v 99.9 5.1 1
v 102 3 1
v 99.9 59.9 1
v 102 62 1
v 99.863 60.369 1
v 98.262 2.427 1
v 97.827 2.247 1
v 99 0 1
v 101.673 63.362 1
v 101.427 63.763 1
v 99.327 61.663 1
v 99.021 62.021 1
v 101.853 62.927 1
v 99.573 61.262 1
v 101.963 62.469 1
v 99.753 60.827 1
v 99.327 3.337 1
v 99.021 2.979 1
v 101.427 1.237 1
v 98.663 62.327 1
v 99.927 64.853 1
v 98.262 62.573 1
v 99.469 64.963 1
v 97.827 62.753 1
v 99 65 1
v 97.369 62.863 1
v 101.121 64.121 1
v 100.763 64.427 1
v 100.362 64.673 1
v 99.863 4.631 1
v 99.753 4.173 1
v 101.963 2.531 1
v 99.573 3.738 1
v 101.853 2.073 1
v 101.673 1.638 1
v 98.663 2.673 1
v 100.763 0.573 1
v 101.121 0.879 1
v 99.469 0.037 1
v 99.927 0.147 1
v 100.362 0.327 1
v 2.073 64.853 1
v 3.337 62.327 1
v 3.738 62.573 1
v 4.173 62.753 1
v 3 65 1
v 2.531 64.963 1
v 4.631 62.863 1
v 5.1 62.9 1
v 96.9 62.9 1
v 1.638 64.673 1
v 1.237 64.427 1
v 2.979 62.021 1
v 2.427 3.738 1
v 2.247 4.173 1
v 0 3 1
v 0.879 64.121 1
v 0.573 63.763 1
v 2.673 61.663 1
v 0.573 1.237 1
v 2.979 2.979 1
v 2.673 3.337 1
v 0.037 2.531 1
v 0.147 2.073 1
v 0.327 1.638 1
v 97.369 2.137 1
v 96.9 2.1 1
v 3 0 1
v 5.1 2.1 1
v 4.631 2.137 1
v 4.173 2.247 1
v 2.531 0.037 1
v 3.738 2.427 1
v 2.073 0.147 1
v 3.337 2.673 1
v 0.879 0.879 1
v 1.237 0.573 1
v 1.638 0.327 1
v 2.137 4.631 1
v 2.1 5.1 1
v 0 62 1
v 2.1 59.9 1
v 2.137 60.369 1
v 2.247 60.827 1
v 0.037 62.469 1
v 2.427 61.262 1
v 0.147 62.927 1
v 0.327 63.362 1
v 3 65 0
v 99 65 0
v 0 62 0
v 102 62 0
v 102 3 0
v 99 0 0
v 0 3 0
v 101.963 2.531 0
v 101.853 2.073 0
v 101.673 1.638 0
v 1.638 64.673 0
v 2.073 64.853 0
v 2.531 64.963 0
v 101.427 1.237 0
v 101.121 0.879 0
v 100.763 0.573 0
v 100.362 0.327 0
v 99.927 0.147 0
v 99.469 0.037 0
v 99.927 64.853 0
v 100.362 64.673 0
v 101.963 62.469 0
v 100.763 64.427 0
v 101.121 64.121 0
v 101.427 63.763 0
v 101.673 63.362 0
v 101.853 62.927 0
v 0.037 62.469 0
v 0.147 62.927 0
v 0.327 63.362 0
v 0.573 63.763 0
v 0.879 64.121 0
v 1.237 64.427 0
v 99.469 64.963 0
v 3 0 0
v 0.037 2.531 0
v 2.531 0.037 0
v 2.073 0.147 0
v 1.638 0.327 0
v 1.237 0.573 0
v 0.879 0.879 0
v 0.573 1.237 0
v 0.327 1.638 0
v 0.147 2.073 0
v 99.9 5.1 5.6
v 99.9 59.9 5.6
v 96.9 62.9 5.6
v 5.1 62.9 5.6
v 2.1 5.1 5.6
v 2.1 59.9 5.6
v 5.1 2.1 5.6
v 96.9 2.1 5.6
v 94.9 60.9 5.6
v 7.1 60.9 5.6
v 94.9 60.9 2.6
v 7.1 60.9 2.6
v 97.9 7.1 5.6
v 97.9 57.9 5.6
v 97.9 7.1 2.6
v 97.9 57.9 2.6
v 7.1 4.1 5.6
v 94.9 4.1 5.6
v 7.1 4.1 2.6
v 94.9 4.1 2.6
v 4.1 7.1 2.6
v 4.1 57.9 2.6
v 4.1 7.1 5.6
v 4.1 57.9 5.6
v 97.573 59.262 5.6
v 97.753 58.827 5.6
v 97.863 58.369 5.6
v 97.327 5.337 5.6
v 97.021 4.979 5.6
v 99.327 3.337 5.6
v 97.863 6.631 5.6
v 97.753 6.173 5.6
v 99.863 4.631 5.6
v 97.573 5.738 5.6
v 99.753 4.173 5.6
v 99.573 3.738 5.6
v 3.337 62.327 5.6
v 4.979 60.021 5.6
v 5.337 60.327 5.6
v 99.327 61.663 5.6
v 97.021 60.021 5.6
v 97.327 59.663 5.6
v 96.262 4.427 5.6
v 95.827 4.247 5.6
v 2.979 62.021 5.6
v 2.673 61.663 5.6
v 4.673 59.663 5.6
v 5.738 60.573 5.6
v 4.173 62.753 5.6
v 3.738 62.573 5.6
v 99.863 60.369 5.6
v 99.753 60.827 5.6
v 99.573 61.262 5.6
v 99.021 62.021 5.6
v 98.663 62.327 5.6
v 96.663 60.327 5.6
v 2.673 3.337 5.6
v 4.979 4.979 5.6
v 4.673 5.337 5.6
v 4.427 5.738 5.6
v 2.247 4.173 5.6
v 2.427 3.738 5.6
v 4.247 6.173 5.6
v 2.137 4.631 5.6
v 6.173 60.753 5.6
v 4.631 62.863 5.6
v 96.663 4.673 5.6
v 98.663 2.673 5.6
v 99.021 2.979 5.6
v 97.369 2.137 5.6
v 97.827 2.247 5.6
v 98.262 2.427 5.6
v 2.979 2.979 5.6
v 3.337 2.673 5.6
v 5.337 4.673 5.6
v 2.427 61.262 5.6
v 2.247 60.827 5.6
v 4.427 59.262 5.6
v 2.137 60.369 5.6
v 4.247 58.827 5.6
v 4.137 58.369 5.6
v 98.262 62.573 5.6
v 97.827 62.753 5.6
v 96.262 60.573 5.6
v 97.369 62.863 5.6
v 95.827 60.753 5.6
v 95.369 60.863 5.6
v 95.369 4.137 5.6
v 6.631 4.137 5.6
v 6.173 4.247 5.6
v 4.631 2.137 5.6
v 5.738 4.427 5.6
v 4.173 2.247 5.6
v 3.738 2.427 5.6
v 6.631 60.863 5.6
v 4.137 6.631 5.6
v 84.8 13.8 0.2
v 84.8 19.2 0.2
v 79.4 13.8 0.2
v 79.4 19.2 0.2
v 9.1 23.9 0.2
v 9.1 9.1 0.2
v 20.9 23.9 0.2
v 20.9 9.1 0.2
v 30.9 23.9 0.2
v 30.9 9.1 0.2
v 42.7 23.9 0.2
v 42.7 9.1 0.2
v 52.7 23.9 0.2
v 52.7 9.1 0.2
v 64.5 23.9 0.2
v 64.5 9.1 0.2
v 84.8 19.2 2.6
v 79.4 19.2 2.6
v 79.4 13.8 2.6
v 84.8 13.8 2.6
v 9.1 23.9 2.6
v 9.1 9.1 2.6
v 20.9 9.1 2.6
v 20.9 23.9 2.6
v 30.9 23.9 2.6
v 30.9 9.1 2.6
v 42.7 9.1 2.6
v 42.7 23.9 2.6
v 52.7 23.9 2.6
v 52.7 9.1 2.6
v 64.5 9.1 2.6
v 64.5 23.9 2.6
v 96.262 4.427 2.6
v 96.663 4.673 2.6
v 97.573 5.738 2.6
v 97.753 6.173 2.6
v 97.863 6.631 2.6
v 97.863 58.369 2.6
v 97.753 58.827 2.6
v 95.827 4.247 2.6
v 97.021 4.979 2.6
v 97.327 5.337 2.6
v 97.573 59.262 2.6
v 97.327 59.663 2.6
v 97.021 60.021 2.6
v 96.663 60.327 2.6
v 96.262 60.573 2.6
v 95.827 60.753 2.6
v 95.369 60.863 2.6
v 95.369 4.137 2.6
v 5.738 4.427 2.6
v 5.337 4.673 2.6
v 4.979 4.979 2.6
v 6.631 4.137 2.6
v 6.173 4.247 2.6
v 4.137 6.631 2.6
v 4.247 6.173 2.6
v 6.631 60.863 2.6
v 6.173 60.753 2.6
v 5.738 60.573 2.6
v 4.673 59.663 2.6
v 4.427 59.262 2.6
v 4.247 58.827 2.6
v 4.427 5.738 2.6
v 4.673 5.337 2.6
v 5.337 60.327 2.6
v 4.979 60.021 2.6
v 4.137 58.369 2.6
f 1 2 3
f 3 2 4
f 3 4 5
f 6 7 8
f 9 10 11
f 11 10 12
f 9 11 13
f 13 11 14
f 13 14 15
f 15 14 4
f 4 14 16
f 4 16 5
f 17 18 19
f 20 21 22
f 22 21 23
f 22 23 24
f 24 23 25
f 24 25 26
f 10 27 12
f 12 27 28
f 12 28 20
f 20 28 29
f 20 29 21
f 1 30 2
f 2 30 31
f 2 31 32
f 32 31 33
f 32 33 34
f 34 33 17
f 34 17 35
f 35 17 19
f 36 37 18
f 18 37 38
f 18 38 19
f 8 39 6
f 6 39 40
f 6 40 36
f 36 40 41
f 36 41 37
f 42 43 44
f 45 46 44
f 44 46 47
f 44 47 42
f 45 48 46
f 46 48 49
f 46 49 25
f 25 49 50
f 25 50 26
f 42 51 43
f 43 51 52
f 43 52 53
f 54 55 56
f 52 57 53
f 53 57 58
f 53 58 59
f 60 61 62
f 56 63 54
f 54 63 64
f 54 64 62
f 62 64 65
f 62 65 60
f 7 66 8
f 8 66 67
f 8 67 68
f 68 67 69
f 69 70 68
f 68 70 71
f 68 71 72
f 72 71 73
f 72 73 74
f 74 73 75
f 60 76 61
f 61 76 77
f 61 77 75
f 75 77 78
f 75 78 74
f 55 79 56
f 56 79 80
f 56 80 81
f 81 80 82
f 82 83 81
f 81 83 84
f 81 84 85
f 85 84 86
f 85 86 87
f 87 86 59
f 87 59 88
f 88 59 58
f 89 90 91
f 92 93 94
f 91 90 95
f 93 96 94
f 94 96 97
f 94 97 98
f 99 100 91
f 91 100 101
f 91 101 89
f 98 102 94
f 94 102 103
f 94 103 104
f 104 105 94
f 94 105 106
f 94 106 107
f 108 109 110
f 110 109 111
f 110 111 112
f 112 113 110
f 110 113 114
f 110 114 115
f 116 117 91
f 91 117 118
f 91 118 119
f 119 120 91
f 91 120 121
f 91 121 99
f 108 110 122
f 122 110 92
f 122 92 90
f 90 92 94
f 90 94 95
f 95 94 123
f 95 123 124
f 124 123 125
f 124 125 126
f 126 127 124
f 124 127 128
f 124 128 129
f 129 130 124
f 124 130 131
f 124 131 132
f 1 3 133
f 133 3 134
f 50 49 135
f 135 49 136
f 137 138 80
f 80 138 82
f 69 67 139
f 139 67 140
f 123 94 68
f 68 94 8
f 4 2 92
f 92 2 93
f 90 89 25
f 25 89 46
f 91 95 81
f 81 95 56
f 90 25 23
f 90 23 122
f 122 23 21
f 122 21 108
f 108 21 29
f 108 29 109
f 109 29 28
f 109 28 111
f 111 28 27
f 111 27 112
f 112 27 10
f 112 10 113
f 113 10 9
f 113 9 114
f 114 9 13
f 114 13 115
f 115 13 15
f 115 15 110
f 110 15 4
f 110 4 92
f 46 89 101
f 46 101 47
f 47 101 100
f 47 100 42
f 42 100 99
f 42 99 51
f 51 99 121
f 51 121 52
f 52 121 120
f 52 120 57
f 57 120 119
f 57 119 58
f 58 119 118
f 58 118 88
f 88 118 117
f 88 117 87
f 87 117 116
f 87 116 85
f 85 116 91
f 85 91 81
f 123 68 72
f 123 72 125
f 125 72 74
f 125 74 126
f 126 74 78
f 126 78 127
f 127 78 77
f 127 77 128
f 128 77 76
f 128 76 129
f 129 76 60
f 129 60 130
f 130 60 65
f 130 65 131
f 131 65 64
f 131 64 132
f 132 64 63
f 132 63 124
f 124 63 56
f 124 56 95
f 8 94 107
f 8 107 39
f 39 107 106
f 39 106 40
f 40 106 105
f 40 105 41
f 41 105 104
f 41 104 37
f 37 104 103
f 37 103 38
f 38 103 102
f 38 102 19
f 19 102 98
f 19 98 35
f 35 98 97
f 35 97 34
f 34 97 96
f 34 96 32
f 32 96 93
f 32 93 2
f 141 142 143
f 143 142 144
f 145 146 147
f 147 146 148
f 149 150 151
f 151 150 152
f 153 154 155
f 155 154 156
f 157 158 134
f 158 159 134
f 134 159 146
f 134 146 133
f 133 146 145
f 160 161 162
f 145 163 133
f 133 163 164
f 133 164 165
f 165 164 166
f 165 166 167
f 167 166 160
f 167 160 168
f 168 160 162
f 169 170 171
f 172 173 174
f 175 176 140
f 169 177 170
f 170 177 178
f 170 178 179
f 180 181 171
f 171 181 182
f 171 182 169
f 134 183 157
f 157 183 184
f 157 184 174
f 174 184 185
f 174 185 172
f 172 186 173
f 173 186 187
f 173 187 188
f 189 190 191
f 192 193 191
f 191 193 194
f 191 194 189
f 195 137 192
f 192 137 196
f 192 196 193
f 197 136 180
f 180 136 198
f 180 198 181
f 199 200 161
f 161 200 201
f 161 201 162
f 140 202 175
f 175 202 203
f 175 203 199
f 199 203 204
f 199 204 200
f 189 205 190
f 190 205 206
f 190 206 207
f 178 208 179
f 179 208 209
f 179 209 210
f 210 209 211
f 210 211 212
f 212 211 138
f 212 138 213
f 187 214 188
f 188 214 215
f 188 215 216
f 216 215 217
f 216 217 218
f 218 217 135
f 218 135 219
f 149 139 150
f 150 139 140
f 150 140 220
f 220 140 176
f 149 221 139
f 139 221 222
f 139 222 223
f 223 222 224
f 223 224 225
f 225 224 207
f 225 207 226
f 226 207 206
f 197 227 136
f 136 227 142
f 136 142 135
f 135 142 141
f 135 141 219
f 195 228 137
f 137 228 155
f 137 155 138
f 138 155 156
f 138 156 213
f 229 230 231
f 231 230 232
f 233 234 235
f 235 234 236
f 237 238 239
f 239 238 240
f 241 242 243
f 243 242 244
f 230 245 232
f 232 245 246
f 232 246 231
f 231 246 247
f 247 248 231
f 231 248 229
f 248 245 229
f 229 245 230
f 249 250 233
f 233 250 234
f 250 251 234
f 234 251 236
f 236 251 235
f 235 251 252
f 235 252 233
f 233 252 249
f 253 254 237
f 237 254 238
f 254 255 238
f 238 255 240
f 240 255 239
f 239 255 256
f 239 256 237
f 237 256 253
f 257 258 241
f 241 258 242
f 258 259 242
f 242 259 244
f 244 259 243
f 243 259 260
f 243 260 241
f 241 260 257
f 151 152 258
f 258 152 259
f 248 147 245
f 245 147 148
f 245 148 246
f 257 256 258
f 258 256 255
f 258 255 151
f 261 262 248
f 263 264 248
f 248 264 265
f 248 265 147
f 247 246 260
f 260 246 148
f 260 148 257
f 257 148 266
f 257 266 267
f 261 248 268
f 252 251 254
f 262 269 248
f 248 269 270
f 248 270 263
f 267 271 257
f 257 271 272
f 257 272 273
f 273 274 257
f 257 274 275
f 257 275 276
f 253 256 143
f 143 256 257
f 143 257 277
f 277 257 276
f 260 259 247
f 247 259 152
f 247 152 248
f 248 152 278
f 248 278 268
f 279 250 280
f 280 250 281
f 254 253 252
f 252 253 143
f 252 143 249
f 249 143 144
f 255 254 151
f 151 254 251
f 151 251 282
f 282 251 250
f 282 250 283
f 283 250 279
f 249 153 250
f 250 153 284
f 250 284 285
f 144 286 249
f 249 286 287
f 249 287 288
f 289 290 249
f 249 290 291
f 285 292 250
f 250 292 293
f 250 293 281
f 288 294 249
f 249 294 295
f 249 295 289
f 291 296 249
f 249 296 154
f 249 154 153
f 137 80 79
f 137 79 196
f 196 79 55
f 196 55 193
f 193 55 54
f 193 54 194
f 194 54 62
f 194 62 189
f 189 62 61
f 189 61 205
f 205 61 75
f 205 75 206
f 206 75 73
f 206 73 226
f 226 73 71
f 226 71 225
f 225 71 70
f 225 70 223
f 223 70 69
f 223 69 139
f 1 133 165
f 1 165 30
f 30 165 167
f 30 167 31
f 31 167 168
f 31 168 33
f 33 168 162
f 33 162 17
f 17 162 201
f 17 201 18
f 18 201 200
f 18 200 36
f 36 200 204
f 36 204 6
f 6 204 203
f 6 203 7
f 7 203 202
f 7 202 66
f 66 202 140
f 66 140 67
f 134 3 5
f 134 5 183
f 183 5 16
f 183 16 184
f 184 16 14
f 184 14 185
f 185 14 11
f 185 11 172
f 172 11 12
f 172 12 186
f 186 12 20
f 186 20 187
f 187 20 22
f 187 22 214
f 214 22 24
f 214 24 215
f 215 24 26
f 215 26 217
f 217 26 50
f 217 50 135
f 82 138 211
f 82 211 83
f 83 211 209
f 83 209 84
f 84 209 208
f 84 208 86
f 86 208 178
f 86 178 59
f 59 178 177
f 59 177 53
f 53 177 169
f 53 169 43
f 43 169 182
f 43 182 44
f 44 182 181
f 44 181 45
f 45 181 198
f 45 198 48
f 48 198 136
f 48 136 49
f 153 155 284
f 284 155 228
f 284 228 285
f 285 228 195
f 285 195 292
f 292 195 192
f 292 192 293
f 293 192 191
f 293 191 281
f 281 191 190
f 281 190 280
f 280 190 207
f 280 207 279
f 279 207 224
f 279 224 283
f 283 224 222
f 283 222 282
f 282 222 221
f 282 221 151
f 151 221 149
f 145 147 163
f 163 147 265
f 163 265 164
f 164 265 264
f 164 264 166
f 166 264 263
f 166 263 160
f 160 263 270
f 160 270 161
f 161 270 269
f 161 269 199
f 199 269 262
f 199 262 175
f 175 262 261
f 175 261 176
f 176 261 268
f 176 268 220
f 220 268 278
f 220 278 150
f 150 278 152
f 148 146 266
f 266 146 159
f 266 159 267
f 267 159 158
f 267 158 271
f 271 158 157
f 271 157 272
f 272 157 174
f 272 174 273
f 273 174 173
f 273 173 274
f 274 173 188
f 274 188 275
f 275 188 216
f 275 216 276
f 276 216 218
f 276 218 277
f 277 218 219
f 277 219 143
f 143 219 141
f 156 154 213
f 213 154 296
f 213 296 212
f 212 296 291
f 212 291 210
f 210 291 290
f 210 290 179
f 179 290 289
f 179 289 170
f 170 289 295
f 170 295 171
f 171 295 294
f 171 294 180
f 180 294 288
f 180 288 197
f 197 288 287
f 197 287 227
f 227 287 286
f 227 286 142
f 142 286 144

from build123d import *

# Parameters (mm, degrees)
SKICA1_W                = 97.8
SKICA1_H                = 60.8
SKICA1_W_2              = 11.8
SKICA1_H_2              = 14.8
SKICA1_W_3              = 5.4
SKICA1_H_3              = 5.4
P_IDAT_VYSUNUT_M1_DEPTH = 2.6
SKICA1_3_W              = 102
SKICA1_3_H              = 65
SKICA1_3_W_2            = 97.8
SKICA1_3_H_2            = 60.8
P_IDAT_VYSUNUT_M2_DEPTH = 1
SKICA1_5_W              = 11.8
SKICA1_5_H              = 14.8
SKICA1_5_W_2            = 5.4
SKICA1_5_H_2            = 5.4
P_IDAT_VYSUNUT_M3_DEPTH = 0.2
ZAOBLIT1_R              = 3
ZAOBLIT2_R              = 3
SKICA1_6_W              = 97.8
SKICA1_6_H              = 60.8
SKICA1_6_W_2            = 93.8
SKICA1_6_H_2            = 56.8
P_IDAT_VYSUNUT_M4_DEPTH = 5.6
ZAOBLIT4_R              = 3
ZAOBLIT5_R              = 3


with BuildPart() as part:
    # Skica1 → Přidat vysunutím1 (new body)
    with BuildSketch(Plane.XY):
        with Locations((51, 32.5)):
            Rectangle(SKICA1_W, SKICA1_H)
        with Locations((15, 16.5)):
            Rectangle(SKICA1_W_2, SKICA1_H_2, mode=Mode.SUBTRACT)
        with Locations((36.8, 16.5)):
            Rectangle(SKICA1_W_2, SKICA1_H_2, mode=Mode.SUBTRACT)
        with Locations((58.6, 16.5)):
            Rectangle(SKICA1_W_2, SKICA1_H_2, mode=Mode.SUBTRACT)
        with Locations((82.1, 16.5)):
            Rectangle(SKICA1_W_3, SKICA1_H_3, mode=Mode.SUBTRACT)
    extrude(amount=P_IDAT_VYSUNUT_M1_DEPTH)

    # Skica1<3> → Přidat vysunutím2 (add)
    with BuildSketch(Plane.XY):
        with Locations((51, 32.5)):
            Rectangle(SKICA1_3_W, SKICA1_3_H)
        with Locations((51, 32.5)):
            Rectangle(SKICA1_3_W_2, SKICA1_3_H_2, mode=Mode.SUBTRACT)
    extrude(amount=P_IDAT_VYSUNUT_M2_DEPTH)

    # Skica1<5> → Přidat vysunutím3 (add)
    with BuildSketch(Plane.XY):
        with Locations((58.6, 16.5)):
            Rectangle(SKICA1_5_W, SKICA1_5_H)
        with Locations((15, 16.5)):
            Rectangle(SKICA1_5_W, SKICA1_5_H)
        with Locations((36.8, 16.5)):
            Rectangle(SKICA1_5_W, SKICA1_5_H)
        with Locations((82.1, 16.5)):
            Rectangle(SKICA1_5_W_2, SKICA1_5_H_2)
    extrude(amount=P_IDAT_VYSUNUT_M3_DEPTH)

    # Zaoblit1
    zaoblit1_edges = [part.edges().sort_by_distance(p)[0] for p in [
        (0, 0, 0.5),
        (102, 0, 0.5),
        (102, 65, 0.5),
        (0, 65, 0.5),
    ]]
    fillet(zaoblit1_edges, radius=ZAOBLIT1_R)

    # Zaoblit2
    zaoblit2_edges = [part.edges().sort_by_distance(p)[0] for p in [
        (99.9, 2.1, 1.8),
        (99.9, 62.9, 1.8),
        (2.1, 62.9, 1.8),
        (2.1, 2.1, 1.8),
    ]]
    fillet(zaoblit2_edges, radius=ZAOBLIT2_R)

    # Skica1<6> → Přidat vysunutím4 (add)
    with BuildSketch(Plane.XY):
        with Locations((51, 32.5)):
            Rectangle(SKICA1_6_W, SKICA1_6_H)
        with Locations((51, 32.5)):
            Rectangle(SKICA1_6_W_2, SKICA1_6_H_2, mode=Mode.SUBTRACT)
    extrude(amount=P_IDAT_VYSUNUT_M4_DEPTH)

    # Zaoblit4
    zaoblit4_edges = [part.edges().sort_by_distance(p)[0] for p in [
        (2.1, 62.9, 3.3),
        (99.9, 2.1, 3.3),
        (2.1, 2.1, 3.3),
        (99.9, 62.9, 3.3),
    ]]
    fillet(zaoblit4_edges, radius=ZAOBLIT4_R)

    # Zaoblit5
    zaoblit5_edges = [part.edges().sort_by_distance(p)[0] for p in [
        (4.1, 60.9, 4.1),
        (97.9, 60.9, 4.1),
        (97.9, 4.1, 4.1),
        (4.1, 4.1, 4.1),
    ]]
    fillet(zaoblit5_edges, radius=ZAOBLIT5_R)


solid = part.part
